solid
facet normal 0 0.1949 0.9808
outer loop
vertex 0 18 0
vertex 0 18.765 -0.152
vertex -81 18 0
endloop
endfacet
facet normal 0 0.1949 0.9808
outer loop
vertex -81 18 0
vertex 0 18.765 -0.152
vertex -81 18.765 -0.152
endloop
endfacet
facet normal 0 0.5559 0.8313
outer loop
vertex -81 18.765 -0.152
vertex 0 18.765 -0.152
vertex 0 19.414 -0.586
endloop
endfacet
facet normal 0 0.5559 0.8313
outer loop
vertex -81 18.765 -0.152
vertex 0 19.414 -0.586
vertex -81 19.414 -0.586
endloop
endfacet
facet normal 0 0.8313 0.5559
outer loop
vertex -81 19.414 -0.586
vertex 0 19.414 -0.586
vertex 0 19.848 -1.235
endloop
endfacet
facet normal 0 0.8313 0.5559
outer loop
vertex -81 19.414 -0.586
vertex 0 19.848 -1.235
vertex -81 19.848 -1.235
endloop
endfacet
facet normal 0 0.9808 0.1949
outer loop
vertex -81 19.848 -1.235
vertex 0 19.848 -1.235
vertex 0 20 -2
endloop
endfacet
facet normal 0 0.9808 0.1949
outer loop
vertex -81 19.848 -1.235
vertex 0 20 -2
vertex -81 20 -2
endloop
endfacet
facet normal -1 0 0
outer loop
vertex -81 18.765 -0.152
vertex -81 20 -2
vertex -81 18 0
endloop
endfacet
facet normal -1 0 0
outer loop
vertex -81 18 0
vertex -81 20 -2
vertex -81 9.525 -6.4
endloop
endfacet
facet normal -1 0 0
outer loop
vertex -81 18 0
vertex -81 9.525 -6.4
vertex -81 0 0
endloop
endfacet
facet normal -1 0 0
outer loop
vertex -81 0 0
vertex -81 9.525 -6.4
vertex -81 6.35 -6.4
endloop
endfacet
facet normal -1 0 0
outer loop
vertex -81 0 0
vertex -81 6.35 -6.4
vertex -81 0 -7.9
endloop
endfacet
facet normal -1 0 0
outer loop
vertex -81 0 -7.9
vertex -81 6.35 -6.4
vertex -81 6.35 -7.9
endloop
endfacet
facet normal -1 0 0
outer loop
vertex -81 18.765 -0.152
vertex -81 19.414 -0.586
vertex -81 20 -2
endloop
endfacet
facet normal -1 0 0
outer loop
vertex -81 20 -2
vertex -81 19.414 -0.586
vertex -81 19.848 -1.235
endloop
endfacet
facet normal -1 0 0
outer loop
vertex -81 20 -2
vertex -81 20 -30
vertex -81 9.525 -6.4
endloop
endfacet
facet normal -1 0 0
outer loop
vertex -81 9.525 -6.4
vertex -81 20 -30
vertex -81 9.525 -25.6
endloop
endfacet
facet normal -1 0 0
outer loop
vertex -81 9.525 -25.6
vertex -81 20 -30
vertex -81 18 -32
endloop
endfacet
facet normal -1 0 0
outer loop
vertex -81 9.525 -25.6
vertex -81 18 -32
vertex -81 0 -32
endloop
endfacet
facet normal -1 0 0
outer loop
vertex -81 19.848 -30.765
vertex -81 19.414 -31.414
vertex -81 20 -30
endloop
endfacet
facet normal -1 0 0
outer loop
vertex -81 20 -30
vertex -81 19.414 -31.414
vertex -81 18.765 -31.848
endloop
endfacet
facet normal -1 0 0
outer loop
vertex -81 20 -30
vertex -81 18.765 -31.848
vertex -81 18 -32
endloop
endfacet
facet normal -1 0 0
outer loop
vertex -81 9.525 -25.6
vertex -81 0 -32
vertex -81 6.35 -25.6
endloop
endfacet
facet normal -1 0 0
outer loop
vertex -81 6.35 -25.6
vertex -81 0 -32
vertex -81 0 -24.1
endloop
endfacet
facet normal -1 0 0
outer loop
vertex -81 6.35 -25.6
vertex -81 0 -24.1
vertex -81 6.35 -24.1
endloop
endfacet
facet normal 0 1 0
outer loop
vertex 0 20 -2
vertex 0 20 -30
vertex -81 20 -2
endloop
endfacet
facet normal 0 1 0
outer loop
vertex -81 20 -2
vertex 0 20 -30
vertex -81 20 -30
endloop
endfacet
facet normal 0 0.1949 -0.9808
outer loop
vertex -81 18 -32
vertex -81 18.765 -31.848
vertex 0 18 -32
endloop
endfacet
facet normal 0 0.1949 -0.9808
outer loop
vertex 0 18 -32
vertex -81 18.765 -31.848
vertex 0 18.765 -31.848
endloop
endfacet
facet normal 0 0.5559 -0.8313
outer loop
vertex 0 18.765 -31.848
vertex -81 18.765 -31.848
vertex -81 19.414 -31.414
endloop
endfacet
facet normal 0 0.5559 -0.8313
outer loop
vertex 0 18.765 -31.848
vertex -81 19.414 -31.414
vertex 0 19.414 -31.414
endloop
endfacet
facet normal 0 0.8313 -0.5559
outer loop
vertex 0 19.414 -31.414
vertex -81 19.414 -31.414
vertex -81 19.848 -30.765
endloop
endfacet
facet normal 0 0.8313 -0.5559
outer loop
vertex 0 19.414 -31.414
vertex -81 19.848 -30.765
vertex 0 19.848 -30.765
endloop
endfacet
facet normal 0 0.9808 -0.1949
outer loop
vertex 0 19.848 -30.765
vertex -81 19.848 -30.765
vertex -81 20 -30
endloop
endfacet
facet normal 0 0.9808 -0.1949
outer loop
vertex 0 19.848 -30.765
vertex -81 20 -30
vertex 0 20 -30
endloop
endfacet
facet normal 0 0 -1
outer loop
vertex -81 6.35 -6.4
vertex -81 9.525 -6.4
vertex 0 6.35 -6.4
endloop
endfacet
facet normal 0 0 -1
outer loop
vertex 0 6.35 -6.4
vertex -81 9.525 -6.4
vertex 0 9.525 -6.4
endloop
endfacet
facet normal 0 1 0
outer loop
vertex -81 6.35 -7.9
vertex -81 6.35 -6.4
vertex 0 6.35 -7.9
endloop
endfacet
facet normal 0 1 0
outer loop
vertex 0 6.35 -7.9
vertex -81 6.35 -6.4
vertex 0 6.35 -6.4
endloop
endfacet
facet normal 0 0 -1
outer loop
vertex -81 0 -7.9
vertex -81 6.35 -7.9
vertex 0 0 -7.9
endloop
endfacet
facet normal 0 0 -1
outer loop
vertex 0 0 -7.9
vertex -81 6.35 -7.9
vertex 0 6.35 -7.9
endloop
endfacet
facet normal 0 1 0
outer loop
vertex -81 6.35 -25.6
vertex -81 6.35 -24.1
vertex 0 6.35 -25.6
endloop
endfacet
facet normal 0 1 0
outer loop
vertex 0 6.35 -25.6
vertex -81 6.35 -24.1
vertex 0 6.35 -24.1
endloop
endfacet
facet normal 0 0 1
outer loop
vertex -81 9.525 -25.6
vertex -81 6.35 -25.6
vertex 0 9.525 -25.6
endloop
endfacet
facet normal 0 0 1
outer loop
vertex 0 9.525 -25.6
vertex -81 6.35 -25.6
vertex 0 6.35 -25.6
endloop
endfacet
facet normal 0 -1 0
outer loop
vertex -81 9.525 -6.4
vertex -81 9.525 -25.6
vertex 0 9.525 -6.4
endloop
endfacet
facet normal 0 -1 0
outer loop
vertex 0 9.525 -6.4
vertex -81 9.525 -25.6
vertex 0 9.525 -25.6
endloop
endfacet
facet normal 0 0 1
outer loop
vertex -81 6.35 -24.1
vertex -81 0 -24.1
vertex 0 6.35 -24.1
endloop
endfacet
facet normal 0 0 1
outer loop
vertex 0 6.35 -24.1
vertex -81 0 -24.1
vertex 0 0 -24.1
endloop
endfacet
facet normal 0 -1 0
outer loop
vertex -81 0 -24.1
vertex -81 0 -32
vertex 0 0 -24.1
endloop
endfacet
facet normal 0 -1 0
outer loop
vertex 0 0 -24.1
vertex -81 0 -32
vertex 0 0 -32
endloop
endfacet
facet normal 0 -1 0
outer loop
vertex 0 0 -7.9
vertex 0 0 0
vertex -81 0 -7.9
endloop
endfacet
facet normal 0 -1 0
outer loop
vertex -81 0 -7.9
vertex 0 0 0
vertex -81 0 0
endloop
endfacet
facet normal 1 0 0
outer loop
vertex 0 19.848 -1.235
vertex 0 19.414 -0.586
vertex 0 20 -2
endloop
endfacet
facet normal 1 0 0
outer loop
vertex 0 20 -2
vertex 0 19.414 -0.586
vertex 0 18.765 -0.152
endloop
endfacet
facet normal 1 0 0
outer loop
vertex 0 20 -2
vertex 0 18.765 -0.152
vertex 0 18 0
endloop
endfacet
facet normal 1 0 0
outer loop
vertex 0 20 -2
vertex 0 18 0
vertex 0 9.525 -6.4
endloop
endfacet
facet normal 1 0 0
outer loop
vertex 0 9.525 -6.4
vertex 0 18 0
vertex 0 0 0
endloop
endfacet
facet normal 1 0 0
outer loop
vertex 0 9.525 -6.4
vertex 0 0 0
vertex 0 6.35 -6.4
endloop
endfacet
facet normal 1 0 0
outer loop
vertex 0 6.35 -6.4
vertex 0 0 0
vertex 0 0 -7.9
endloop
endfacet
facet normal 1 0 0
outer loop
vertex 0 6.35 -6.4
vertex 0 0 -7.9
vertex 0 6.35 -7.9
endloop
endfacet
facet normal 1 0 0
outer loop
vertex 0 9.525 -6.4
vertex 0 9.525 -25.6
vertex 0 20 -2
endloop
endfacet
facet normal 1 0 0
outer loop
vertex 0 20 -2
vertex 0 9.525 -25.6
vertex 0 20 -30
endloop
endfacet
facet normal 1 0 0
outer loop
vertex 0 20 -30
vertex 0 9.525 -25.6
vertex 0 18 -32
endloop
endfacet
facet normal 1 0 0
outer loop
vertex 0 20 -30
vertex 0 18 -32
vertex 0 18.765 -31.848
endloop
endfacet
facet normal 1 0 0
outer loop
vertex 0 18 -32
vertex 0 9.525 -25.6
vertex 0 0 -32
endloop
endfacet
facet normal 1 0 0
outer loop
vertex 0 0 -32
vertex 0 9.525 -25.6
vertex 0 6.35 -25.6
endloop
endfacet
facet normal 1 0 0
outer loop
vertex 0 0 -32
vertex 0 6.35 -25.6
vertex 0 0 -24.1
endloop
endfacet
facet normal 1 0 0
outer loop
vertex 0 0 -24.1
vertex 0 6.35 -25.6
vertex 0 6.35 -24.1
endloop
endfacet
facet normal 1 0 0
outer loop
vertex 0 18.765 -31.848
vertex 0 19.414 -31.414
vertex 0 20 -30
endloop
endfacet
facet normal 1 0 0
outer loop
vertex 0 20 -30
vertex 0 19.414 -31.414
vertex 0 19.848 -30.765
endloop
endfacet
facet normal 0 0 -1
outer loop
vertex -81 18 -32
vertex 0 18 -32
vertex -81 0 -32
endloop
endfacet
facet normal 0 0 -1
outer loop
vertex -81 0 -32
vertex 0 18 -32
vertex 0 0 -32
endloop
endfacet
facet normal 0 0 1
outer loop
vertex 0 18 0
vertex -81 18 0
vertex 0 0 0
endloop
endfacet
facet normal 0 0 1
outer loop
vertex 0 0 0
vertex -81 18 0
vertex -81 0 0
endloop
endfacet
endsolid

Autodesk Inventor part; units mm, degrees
ref_plane "YZ Plane" through (0, 0, 0) normal (1, 0, 0) x (0, 1, 0)
ref_plane "XZ Plane" through (0, 0, 0) normal (0, 1, 0) x (-1, 0, 0)
ref_plane "XY Plane" through (0, 0, 0) normal (0, 0, 1) x (1, 0, 0)
sketch "Sketch1" plane through (0, 0, 0) normal (0, 1, 0) x (-1, 0, 0)
  line L0 (81, 0) -> (0, 0)
  line L1 (0, 0) -> (0, -32)
  line L2 (0, -32) -> (81, -32)
  line L3 (81, -32) -> (81, 0)
  point P0 (0, -16)
  point P1 (40.5, 0)
  dimension "d0" = 81
  dimension "d1" = 32
extrude "Extrusion1" add sketch "Sketch1" along normal blind 20
sketch "Sketch2" plane through (0, 0, 0) normal (1, 0, 0) x (0, 0, -1)
  line L0 (0, 0) -> (32, 0) projected
  line L1 (24.1, 0) -> (24.1, 6.35)
  line L2 (24.1, 6.35) -> (25.6, 6.35)
  line L3 (25.6, 6.35) -> (25.6, 9.525)
  line L4 (25.6, 9.525) -> (6.4, 9.525)
  line L5 (6.4, 9.525) -> (6.4, 6.35)
  line L6 (6.4, 6.35) -> (7.9, 6.35)
  line L7 (7.9, 6.35) -> (7.9, 0)
  line L8 (24.1, 0) -> (7.9, 0)
  line L9 (32, 0) -> (32, 20) projected
  line L10 (0, 0) -> (0, 20) projected
  dimension "d4" = 3.175
  dimension "d5" = 6.35
  dimension "d6" = 19.2
  dimension "d7" = 16.2
  dimension "d8" = 6.4
  dimension "d17" = 7.9
  dimension "d18" = 32
extrude "Extrusion2" cut sketch "Sketch2" against normal blind 103.1875
fillet "Fillet1" radius 2 1 edges at (-40.5, 20, -32)
fillet "Fillet2" radius 2 1 edges at (-40.5, 20, 0)
equation "\"d8\" = -0.5 * d6 + 0.5 * d18"
equation "\"d17\" = -0.5 * d7 + 0.5 * d18"
properties part number "rail holder"
